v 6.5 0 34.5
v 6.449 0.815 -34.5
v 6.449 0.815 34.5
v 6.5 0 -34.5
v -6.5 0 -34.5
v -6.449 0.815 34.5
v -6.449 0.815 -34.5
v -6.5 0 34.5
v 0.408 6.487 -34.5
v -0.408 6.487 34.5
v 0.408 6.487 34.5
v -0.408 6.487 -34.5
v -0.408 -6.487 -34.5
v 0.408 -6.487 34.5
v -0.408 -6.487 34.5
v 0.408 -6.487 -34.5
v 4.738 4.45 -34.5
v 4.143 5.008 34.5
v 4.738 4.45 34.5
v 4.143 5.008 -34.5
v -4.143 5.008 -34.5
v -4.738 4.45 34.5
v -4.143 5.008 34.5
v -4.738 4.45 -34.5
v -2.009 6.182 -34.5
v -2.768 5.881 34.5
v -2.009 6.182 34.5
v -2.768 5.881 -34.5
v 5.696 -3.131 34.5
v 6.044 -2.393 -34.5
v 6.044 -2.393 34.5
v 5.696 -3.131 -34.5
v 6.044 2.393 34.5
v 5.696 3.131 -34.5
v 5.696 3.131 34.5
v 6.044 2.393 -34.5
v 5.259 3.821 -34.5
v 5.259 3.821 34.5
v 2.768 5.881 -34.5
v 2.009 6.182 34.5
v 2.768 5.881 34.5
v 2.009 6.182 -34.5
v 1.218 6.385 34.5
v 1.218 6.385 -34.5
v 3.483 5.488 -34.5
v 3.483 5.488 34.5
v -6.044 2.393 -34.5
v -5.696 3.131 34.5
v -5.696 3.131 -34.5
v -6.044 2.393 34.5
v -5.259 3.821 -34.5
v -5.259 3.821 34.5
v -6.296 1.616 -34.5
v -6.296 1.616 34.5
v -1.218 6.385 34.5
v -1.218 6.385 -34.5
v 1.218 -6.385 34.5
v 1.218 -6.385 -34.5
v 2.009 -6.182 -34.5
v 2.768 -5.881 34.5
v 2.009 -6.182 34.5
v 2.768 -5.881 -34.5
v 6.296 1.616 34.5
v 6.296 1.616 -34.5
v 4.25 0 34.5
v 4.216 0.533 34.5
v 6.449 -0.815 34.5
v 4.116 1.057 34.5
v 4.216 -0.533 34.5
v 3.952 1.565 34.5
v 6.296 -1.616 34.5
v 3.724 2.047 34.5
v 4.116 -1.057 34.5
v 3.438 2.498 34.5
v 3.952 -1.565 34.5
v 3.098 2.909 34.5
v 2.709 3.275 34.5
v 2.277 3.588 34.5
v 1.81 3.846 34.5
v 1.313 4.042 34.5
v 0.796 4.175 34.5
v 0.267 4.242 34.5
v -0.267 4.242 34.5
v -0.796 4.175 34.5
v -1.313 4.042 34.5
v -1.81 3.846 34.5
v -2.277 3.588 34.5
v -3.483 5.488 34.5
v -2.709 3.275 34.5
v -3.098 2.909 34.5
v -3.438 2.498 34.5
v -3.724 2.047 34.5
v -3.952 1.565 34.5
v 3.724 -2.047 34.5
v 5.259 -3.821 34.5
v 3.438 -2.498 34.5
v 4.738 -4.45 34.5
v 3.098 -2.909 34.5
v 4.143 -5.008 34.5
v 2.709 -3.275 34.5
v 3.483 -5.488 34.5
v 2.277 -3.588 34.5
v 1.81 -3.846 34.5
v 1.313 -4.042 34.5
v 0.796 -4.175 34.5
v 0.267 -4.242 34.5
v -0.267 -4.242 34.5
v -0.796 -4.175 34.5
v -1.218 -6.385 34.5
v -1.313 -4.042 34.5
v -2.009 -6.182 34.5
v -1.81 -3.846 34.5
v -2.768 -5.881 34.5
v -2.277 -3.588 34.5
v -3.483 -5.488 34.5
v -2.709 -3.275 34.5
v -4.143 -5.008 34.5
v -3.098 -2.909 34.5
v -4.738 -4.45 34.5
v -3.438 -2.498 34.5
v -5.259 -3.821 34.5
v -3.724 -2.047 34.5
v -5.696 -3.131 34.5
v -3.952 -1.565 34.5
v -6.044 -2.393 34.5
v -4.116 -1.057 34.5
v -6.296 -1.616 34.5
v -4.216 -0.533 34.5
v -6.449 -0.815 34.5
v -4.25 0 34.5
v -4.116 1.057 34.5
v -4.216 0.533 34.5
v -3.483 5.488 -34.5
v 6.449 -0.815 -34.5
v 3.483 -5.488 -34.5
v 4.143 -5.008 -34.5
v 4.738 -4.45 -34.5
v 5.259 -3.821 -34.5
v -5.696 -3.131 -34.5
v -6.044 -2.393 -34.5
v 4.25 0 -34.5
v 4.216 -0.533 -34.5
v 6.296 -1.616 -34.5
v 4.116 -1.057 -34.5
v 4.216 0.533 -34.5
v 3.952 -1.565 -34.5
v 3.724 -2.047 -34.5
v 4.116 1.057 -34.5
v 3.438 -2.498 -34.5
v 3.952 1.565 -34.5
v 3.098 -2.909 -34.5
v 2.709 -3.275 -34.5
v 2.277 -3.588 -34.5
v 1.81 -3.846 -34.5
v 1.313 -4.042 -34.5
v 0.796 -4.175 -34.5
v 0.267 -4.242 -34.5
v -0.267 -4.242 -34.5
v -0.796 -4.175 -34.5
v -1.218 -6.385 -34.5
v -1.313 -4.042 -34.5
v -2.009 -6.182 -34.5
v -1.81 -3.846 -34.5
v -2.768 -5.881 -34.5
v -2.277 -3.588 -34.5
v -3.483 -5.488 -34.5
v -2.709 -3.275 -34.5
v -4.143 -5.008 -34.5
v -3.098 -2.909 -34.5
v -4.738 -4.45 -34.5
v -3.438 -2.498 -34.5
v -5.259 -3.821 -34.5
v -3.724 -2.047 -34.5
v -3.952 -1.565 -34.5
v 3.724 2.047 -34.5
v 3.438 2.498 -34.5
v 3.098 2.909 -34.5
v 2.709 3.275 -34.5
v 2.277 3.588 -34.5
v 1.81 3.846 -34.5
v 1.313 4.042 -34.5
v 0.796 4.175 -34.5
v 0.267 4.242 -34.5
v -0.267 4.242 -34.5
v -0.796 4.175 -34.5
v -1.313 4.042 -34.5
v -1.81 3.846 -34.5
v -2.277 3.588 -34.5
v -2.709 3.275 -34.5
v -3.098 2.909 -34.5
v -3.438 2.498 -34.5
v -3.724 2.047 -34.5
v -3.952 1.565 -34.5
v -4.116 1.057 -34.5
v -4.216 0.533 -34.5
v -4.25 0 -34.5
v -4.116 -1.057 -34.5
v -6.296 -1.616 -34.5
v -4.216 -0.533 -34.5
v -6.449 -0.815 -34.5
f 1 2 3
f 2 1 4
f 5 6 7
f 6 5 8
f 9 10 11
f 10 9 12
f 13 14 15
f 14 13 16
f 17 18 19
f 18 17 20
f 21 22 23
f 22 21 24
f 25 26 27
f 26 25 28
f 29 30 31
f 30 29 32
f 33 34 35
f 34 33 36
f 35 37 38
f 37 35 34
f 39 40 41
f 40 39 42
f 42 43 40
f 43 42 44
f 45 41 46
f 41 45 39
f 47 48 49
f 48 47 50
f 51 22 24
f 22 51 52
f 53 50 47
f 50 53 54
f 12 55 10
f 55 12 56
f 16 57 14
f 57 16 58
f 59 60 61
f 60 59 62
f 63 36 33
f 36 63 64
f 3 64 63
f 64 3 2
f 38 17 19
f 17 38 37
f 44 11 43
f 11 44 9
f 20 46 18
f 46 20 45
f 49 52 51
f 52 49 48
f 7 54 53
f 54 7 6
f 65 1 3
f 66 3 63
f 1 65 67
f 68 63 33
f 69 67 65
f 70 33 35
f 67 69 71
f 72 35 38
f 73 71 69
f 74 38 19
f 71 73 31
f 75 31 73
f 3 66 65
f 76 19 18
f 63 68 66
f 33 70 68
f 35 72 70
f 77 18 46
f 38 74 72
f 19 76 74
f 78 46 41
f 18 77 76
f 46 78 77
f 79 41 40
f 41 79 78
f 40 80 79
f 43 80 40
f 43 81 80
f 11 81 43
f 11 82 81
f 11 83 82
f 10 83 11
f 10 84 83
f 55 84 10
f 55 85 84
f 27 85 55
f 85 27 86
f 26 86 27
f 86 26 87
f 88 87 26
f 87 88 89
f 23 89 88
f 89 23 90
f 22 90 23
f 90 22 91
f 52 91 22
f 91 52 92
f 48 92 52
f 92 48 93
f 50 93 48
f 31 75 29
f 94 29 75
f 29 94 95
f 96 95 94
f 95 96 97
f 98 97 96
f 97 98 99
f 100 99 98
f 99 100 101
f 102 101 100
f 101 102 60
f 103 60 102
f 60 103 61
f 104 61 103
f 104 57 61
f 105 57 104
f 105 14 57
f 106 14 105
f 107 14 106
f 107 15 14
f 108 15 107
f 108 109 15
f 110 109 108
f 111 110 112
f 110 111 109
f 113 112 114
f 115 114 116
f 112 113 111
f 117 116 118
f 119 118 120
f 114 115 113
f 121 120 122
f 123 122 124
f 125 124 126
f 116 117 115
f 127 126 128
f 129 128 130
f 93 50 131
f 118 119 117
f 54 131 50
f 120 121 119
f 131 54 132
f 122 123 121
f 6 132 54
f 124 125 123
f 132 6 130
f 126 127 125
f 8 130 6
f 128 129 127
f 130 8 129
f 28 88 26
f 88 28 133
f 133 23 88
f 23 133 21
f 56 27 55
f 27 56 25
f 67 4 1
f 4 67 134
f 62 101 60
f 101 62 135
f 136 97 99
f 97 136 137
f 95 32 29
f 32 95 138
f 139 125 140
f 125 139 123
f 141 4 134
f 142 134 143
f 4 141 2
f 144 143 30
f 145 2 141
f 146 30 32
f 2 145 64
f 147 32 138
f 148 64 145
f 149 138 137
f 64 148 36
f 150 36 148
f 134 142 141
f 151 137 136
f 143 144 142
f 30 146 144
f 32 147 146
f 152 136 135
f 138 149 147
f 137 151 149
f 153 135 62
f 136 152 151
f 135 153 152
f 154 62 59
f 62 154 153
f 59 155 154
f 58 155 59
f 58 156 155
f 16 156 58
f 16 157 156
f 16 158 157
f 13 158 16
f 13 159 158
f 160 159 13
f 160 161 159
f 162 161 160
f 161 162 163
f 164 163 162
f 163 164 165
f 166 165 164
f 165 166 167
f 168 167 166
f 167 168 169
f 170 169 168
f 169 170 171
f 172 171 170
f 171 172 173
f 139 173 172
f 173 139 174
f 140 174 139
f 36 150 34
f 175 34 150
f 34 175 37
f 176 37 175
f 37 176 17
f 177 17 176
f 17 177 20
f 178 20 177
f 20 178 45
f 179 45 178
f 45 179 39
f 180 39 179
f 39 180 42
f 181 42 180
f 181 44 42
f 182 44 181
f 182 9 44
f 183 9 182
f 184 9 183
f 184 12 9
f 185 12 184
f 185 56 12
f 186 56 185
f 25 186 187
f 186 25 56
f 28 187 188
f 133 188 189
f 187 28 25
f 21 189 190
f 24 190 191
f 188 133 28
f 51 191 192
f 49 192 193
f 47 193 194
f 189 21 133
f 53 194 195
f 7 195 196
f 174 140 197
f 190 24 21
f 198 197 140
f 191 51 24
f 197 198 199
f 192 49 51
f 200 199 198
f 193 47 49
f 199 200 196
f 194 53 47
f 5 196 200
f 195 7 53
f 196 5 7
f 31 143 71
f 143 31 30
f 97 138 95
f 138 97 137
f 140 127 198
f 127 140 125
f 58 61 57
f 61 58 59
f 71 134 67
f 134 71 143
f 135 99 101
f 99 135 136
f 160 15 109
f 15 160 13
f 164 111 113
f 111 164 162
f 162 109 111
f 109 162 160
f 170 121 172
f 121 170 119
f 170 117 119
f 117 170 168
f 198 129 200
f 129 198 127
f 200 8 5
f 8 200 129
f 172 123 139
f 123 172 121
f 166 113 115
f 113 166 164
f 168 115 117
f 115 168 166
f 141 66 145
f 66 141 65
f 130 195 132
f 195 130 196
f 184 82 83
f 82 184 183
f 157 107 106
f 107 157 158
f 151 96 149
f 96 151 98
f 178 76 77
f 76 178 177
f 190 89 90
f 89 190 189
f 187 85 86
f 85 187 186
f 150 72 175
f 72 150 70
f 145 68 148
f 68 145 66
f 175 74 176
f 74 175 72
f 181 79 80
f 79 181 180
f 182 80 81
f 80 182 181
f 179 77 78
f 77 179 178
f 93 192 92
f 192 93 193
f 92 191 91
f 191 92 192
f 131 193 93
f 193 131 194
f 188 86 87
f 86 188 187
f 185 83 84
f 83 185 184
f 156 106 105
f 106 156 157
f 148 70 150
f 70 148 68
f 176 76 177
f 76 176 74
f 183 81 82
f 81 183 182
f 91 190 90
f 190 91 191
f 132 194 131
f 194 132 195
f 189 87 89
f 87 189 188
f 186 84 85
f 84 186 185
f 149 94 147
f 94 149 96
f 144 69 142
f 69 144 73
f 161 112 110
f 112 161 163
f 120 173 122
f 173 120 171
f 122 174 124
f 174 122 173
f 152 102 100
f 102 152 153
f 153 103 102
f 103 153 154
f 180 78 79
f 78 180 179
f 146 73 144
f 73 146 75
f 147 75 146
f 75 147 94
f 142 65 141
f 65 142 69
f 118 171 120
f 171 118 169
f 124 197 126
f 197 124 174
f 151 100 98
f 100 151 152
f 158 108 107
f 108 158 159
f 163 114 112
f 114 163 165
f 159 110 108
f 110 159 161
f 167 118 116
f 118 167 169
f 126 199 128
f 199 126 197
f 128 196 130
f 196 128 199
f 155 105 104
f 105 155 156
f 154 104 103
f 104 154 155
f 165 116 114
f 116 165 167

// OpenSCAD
$fn = 50;


difference() {
	union() {
		translate(v = [0, 0, -34.5000000000]) {
			cylinder(h = 69, r = 6.5000000000);
		}
	}
	union() {
		translate(v = [0, 0, -100.0000000000]) {
			cylinder(h = 200, r = 4.2500000000);
		}
	}
}
